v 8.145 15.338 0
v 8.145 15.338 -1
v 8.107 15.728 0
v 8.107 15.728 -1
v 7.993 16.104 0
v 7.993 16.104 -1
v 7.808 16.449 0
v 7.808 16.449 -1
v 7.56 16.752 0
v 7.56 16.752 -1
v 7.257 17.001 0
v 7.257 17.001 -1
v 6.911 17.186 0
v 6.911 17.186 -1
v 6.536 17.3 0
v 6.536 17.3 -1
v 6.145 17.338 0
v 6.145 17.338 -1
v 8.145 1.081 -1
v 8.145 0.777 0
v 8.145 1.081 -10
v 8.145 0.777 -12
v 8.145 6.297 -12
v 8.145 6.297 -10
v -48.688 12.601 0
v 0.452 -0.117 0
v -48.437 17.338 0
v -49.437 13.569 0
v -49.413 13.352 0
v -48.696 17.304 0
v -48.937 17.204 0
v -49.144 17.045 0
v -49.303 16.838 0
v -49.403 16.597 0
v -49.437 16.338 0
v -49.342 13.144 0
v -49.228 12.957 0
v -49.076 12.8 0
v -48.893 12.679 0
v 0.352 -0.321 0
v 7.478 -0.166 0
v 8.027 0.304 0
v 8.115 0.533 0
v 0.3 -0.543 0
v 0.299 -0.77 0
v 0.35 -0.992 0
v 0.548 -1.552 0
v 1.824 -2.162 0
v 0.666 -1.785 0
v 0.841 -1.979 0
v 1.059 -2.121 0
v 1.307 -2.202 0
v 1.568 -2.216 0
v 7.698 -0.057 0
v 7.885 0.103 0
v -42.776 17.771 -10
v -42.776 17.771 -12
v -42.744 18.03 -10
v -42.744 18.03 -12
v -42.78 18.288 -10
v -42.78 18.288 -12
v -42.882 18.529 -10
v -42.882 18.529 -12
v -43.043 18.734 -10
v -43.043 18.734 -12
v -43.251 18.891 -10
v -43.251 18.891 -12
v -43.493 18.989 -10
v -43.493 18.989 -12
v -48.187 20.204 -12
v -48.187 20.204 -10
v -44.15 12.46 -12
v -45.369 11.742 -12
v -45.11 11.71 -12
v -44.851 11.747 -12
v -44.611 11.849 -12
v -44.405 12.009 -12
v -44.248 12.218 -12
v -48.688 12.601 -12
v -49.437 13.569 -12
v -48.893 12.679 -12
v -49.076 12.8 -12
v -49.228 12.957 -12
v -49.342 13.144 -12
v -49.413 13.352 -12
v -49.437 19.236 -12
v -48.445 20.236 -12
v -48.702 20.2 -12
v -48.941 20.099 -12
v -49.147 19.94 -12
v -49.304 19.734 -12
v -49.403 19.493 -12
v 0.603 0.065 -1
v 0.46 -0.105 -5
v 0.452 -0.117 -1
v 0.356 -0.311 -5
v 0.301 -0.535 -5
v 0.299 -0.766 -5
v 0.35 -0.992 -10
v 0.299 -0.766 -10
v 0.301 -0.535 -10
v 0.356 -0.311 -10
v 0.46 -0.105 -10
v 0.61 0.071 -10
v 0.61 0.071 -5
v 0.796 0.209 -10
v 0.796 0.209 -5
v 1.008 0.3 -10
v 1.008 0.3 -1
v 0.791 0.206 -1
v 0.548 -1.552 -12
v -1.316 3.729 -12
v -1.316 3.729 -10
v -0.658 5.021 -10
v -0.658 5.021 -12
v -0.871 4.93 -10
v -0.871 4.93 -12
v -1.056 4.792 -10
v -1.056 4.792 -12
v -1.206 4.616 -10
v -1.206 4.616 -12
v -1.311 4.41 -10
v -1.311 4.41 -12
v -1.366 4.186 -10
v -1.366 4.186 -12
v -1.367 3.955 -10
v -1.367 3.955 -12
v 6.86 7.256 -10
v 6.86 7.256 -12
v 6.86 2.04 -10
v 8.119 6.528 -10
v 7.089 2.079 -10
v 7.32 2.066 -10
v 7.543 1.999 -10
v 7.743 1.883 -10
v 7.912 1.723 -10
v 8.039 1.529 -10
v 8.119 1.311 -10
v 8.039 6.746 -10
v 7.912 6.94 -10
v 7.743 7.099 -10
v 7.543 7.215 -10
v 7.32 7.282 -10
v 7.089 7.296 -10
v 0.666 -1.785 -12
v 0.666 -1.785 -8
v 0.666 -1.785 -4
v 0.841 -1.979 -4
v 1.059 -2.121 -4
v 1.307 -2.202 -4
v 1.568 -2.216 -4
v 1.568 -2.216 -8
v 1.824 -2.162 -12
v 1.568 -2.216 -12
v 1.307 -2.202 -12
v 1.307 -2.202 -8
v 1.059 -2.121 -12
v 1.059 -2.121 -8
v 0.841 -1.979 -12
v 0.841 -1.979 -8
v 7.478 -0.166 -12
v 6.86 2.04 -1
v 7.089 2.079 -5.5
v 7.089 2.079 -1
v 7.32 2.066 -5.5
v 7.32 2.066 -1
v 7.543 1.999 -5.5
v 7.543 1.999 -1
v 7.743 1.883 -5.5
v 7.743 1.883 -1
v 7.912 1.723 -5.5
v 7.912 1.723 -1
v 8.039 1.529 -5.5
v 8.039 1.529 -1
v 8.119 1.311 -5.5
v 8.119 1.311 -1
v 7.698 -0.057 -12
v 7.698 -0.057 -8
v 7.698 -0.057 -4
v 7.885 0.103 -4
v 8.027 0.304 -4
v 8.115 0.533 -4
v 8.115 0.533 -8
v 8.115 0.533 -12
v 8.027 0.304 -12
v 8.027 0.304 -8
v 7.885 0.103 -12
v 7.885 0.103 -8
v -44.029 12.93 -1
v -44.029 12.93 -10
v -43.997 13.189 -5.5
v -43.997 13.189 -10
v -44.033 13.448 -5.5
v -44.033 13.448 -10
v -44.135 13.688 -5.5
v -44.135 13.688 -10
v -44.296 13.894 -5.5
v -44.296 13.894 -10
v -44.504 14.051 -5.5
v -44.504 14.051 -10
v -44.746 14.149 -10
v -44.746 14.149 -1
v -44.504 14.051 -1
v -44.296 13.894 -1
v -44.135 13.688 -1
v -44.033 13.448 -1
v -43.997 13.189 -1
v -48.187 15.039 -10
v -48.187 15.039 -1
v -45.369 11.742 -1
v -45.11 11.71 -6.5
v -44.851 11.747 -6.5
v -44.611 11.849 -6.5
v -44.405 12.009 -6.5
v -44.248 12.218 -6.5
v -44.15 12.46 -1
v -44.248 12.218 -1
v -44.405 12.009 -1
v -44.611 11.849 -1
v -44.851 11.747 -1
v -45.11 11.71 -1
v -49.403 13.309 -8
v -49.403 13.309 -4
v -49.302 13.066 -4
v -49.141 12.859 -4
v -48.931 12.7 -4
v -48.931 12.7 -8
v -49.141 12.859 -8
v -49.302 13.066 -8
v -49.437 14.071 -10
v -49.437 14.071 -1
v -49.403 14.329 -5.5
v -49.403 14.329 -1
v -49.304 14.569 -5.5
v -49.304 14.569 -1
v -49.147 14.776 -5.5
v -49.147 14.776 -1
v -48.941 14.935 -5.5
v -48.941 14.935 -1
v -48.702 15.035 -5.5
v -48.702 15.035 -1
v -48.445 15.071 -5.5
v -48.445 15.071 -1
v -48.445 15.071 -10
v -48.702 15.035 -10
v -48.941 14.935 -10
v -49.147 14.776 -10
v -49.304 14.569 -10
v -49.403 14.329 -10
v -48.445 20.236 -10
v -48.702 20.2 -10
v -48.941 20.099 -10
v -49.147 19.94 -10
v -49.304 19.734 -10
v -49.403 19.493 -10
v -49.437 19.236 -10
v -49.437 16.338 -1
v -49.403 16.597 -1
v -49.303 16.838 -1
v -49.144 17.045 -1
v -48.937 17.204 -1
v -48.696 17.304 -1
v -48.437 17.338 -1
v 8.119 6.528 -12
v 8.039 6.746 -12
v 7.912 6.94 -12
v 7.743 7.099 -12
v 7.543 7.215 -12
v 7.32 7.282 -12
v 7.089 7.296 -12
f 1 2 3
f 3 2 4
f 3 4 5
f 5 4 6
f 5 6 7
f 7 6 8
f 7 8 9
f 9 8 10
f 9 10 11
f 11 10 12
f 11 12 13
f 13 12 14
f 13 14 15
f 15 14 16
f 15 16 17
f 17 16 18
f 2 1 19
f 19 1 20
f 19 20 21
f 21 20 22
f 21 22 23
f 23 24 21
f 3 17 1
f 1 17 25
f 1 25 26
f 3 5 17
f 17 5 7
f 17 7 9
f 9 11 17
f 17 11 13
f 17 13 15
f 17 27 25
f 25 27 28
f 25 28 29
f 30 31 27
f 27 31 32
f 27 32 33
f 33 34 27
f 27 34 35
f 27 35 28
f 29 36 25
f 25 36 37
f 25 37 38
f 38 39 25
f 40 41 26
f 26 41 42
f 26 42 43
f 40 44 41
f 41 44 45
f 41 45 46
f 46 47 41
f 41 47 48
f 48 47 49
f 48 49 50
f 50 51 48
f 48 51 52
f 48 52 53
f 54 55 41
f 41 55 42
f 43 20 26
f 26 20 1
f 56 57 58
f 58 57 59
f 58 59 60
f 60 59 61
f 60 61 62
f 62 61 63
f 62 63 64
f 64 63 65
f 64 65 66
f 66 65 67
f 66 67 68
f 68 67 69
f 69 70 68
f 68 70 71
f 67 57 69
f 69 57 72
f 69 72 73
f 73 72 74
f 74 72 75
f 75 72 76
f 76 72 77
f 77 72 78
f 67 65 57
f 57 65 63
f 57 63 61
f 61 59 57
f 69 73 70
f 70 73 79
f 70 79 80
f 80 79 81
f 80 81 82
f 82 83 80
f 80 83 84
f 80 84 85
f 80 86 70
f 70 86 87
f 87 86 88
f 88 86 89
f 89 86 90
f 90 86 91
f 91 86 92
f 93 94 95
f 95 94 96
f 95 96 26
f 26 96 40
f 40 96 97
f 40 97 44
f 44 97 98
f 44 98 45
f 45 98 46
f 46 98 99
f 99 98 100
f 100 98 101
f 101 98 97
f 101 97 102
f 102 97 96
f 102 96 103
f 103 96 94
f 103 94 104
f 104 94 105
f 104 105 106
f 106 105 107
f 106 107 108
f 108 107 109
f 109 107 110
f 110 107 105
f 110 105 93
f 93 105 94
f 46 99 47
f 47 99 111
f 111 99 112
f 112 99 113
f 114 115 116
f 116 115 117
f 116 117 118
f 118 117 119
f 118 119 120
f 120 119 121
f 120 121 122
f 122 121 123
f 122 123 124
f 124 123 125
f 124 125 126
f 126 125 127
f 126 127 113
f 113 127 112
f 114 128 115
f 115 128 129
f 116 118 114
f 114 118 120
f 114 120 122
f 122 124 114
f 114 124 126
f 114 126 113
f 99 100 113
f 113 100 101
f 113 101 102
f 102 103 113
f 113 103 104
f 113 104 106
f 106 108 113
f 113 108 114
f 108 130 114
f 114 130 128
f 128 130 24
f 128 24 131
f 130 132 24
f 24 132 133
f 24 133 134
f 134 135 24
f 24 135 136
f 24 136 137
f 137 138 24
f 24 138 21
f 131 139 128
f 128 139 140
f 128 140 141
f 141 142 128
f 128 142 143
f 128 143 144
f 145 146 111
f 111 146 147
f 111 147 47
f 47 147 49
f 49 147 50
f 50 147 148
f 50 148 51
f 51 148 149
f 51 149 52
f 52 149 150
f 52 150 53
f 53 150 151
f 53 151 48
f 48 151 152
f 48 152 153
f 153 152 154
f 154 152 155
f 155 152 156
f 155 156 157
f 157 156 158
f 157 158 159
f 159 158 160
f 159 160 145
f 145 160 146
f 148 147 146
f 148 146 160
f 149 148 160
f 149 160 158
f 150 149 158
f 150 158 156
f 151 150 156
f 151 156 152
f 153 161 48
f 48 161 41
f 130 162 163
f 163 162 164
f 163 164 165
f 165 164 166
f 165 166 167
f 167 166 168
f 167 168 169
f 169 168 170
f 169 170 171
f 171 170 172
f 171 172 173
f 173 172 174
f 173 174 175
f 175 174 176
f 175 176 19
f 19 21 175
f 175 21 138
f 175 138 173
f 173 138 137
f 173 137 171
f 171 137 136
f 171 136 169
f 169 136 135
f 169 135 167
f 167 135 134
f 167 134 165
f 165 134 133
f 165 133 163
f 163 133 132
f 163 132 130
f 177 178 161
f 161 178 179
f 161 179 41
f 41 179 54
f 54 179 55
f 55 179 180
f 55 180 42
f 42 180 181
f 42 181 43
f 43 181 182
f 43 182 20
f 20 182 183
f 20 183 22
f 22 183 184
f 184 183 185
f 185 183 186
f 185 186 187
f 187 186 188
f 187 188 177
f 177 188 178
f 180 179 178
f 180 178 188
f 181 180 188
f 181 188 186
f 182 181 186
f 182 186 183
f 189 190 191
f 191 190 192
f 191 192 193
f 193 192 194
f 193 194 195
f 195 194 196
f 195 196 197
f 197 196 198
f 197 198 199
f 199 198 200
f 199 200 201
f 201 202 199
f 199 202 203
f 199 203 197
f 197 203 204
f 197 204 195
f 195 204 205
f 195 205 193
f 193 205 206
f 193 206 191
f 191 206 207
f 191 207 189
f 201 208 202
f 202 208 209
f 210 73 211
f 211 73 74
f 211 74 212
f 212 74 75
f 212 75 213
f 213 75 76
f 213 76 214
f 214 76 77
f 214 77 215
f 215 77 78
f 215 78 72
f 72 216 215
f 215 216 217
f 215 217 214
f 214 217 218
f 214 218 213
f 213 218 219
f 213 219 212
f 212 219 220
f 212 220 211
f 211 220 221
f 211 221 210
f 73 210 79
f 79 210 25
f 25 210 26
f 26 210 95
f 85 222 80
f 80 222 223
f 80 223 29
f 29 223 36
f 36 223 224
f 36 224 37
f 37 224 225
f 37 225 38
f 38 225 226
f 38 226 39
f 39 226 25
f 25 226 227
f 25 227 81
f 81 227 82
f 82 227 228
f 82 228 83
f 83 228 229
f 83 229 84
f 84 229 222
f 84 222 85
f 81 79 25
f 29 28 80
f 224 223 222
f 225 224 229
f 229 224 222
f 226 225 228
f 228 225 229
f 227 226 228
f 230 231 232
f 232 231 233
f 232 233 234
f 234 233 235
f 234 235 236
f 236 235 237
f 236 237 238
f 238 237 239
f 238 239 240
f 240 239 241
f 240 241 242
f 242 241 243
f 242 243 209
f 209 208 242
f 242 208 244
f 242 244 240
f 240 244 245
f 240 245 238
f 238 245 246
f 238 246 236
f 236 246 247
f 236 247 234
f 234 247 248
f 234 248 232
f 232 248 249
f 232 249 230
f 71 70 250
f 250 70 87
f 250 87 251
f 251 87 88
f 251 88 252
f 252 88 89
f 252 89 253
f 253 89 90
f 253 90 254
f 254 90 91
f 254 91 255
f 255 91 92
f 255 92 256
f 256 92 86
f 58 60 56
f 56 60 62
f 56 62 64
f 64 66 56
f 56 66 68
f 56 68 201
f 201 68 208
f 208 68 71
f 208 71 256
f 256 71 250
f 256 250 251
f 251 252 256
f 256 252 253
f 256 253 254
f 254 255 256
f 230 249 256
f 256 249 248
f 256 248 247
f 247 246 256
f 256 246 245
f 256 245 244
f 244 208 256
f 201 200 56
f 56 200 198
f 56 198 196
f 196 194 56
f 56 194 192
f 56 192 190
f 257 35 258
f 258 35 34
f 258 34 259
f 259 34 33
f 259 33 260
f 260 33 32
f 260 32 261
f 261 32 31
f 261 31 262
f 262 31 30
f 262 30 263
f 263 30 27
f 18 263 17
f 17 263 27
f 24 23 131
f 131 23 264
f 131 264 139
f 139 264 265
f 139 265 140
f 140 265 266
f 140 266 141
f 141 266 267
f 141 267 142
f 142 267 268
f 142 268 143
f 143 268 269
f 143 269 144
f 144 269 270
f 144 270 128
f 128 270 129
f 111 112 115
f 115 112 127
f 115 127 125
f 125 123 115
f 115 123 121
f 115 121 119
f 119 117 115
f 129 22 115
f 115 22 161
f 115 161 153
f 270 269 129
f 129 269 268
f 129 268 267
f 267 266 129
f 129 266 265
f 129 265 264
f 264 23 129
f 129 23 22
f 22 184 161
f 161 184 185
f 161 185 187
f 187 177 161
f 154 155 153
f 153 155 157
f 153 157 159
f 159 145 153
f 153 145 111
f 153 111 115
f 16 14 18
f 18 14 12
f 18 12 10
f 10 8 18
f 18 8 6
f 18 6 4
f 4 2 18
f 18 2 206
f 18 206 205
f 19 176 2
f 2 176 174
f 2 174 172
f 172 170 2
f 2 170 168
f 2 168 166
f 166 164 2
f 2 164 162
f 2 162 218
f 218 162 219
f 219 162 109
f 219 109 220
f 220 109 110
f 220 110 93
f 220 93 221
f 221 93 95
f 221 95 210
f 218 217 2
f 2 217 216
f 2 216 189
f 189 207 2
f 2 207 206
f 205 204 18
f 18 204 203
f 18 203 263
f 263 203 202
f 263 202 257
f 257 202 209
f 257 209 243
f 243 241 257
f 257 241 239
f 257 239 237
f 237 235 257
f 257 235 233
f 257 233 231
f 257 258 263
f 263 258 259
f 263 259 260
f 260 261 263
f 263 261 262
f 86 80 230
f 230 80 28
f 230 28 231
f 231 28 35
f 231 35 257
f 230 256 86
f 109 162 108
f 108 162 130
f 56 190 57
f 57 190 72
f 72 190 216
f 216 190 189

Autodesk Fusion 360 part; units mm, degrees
sketch "Sketch1" plane through (0, 0, 0) normal (0, 0, 1) x (1, 0, 0) in component "Caliper Hanging Bracket"
  line L0 (-49.4372, 12.7953) -> (0, 0)
  line L1 (8.1454, 2.4216) -> (0, 0)
  line L2 (-49.4372, 12.7953) -> (-49.4372, 17.3382)
  line L3 (-49.4372, 17.3382) -> (8.1454, 17.3382)
  line L4 (8.1454, 17.3382) -> (8.1454, 2.4216)
  line L5 (0, 0) -> (0.8806, -2.495)
  line L6 (0.8806, -2.495) -> (8.1454, 0.0691)
  line L7 (8.1454, 0.0691) -> (8.1454, 2.4216)
  line L8 (-49.4372, 12.7953) -> (-49.4372, 15.3629)
  line L9 (-49.4372, 15.3629) -> (-43.7781, 13.8982)
  line L10 (-43.7781, 13.8982) -> (-44.4009, 11.4918)
  dimension "d17" = 4.5429
  dimension "d18" = 57.5826
  dimension "d19" = 5.8456
  dimension "d20" = 51.0662
  dimension "d23" = 7.704
  dimension "d24" = 2.6458
  dimension "d25" = 8.4977
  dimension "d26" = 2.4857
extrude "Extrude1" add sketch "Sketch1" against normal blind 1 contours L0 L1 L2 L3 L4 L9 L10 makes body 1 in component "Caliper Hanging Bracket"
extrude "Extrude2" add sketch "Sketch1" against normal blind 12 contours L0 L2 L8 L9 L10 | L1 L5 L6 L7 bodies 1 in component "Caliper Hanging Bracket"
ref_plane "WorkPlane1" through (-46.6077, 13.4273, -10) normal (0, 0, -1) x (-1, 0, 0) in component "Caliper Hanging Bracket"
split "Split1" by plane through (-46.6077, 13.4273, -10) normal (0, 0, -1) bodies 1 makes body 2 at (3.0087, -0.8086, -12) makes body 3 at (-47.5509, 14.0188, -12) in component "Caliper Hanging Bracket"
move_face "OffsetFaces1" offset 5 2 faces at (-47.5509, 14.8746, -10.6667) (5.4303, 1.6144, -10.6667) on bodies 2 3 in component "Caliper Hanging Bracket"
combine "Combine1" operation add target body 1 tool bodies 2 3 in component "Caliper Hanging Bracket"
fillet "Fillet1" radius 1 13 edges at (8.1454, 7.6379, -11) (-49.4372, 17.3382, -0.5) (-49.4372, 20.5276, -11) (-49.4372, 15.3629, -5.5) (-49.4372, 12.7953, -6) (-44.4009, 11.4918, -6.5) (-43.7781, 13.8982, -5.5) (8.1454, 0.0691, -6) (8.1454, 2.4216, -5.5) (0.8806, -2.495, -6) (-1.6662, 4.7209, -11) (0, 0, -5.5) (-42.5253, 18.7387, -11) on bodies 1 in component "Caliper Hanging Bracket"
fillet "Fillet2" radius 2 1 edges at (8.1454, 17.3382, -0.5) on bodies 1 in component "Caliper Hanging Bracket"
component "Caliper Hanging Bracket" placed x (1, 0, 0) y (0, 1, 0) z (0, 0, 1) at (0, 0, 0)
